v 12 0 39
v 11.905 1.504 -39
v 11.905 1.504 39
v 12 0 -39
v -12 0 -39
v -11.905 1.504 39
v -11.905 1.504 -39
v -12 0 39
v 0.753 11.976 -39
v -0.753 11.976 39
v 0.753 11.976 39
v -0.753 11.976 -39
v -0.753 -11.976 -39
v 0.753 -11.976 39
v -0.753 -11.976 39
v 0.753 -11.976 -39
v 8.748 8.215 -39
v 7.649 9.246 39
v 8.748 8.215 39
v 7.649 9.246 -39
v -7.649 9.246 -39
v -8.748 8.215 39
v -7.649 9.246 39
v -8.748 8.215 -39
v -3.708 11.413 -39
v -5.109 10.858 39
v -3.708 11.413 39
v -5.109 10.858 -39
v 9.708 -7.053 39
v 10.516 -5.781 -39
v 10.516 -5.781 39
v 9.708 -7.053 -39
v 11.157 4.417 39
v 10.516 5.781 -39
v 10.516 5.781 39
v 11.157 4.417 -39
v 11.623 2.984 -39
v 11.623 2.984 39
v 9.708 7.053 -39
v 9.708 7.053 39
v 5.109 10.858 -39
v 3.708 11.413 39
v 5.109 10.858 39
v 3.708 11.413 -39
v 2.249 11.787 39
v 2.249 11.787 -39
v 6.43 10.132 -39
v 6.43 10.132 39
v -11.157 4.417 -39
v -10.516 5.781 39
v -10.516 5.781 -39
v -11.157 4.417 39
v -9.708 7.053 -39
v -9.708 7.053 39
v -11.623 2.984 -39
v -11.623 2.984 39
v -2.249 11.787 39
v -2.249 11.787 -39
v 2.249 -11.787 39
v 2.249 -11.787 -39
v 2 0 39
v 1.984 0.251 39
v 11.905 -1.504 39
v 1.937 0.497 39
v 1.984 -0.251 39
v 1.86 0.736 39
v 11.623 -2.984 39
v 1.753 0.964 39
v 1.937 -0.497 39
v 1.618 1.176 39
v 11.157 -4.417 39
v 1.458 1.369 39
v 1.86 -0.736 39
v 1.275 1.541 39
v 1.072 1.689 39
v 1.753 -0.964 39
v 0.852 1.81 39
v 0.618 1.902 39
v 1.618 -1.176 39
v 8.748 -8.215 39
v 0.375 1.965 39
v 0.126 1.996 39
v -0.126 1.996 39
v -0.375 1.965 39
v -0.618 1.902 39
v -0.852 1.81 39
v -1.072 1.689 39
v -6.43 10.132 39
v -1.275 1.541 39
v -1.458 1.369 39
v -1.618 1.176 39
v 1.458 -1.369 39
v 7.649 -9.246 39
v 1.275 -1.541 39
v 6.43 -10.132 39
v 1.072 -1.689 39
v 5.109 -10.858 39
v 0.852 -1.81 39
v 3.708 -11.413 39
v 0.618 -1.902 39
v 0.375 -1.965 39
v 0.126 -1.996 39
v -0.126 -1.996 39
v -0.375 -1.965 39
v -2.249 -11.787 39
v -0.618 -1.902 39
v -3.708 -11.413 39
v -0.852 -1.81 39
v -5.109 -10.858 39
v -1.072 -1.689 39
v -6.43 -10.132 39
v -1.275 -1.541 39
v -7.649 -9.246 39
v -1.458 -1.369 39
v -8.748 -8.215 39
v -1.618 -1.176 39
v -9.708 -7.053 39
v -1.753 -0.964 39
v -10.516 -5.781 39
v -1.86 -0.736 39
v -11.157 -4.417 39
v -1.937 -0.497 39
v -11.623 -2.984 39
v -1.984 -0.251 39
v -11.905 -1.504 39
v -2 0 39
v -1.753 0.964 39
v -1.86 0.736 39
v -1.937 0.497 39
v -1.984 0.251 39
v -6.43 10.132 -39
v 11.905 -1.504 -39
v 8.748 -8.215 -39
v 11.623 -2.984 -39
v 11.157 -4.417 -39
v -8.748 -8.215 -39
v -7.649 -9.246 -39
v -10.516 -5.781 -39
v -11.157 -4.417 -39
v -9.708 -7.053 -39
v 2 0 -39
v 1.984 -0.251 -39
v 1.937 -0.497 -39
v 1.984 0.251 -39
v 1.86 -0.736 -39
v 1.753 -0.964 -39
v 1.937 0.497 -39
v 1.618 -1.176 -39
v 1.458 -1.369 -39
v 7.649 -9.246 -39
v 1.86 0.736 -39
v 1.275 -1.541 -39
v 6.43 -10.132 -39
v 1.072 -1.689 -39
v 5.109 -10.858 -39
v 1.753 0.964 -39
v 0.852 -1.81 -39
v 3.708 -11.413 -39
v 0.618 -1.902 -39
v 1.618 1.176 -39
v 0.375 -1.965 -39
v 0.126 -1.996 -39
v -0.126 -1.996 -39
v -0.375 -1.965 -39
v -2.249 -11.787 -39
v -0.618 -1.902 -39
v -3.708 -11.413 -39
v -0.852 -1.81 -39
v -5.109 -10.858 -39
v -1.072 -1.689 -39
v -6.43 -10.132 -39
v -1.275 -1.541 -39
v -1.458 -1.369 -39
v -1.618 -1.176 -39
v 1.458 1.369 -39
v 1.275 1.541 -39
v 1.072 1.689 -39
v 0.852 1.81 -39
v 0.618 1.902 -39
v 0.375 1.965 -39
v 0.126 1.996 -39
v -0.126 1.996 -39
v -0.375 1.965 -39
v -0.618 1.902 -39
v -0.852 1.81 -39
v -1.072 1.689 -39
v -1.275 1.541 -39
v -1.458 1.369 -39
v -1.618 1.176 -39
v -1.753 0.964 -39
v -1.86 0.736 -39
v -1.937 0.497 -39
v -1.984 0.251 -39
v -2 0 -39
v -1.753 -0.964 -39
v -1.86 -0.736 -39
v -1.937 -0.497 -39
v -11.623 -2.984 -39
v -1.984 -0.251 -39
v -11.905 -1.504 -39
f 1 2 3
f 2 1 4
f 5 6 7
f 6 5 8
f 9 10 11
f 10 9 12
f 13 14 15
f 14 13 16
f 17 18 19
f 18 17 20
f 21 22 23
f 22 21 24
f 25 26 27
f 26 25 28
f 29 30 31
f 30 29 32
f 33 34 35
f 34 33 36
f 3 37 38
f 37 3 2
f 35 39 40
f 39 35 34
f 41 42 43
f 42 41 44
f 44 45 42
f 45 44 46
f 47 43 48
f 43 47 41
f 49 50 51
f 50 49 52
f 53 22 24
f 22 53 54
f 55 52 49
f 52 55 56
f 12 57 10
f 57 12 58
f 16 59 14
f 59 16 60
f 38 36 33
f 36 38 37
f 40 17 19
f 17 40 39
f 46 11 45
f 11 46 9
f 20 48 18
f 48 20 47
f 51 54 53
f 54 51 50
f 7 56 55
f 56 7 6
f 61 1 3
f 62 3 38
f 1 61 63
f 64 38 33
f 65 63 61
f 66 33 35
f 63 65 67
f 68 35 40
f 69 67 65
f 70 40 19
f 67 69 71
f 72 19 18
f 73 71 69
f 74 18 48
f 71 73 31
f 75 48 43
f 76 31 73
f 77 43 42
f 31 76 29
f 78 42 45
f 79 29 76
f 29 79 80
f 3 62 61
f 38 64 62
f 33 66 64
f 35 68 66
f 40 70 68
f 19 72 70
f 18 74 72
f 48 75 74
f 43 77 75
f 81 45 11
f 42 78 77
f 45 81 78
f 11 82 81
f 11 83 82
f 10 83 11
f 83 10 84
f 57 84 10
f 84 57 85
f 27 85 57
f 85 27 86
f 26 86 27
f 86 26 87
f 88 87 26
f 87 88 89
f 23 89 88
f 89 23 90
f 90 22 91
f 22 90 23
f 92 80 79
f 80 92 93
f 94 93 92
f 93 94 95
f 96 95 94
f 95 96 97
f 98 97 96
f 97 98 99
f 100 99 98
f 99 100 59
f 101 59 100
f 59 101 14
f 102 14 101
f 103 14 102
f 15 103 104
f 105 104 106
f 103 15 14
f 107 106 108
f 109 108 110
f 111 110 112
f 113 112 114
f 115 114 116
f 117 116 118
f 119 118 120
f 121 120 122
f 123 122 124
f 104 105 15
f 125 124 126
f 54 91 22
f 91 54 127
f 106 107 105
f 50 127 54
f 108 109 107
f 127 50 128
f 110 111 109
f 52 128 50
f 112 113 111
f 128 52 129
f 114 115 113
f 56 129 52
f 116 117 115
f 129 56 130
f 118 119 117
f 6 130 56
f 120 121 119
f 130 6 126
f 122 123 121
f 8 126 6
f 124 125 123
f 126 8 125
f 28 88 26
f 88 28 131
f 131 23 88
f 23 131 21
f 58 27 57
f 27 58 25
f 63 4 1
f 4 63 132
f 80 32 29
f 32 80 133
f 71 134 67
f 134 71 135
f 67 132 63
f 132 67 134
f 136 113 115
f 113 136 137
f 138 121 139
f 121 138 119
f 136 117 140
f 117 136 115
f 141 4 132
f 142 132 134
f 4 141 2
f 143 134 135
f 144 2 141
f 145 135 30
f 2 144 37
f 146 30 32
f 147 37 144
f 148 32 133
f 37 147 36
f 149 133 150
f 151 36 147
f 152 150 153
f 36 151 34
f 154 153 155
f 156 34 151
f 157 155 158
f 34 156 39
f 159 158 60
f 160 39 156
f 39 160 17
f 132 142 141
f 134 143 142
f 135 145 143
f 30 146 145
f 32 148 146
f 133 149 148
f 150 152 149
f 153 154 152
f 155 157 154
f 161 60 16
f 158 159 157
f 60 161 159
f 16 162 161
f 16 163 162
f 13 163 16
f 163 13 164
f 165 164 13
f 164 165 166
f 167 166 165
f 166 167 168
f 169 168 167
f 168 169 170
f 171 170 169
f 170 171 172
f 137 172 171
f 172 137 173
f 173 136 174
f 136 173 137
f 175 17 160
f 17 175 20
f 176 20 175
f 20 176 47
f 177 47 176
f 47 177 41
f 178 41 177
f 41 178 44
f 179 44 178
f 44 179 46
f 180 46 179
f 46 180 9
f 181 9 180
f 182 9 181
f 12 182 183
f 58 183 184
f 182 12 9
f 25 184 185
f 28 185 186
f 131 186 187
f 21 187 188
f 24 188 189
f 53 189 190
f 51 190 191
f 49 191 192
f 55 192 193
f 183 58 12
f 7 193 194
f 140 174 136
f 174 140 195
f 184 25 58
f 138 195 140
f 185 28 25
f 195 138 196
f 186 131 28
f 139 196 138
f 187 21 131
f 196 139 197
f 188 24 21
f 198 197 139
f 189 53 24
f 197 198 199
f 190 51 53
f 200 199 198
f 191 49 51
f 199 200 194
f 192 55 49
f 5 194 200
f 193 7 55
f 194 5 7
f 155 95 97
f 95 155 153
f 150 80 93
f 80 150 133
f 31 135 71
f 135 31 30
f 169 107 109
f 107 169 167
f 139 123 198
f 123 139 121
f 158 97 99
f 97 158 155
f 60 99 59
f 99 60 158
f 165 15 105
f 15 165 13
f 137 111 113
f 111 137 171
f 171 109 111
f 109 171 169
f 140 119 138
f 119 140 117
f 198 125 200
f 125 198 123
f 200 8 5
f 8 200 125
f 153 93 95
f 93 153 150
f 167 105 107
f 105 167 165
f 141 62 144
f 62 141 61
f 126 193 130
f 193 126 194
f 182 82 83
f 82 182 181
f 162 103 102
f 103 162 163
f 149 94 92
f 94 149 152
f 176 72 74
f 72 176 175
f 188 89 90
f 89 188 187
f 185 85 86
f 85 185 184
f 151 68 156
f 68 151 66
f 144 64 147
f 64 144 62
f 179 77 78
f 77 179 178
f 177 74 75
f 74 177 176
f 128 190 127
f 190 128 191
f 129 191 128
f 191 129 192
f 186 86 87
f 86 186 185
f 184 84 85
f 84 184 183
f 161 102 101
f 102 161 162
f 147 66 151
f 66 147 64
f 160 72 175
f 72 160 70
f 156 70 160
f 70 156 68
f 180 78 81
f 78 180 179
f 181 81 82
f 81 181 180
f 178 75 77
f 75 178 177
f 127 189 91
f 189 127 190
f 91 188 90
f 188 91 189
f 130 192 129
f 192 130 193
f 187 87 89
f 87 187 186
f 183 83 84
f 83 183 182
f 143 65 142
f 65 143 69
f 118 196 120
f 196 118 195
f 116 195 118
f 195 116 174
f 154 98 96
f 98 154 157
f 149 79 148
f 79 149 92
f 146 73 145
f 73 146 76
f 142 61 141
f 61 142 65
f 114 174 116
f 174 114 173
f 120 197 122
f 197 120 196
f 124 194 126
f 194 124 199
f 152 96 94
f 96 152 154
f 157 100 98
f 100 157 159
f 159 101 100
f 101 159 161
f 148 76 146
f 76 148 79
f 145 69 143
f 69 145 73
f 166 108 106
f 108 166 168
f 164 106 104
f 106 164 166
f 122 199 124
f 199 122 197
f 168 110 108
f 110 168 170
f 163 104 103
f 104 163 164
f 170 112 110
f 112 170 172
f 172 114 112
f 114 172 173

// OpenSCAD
$fn = 50;


difference() {
	union() {
		translate(v = [0, 0, -39.0000000000]) {
			cylinder(h = 78, r = 12.0000000000);
		}
	}
	union() {
		translate(v = [0, 0, -100.0000000000]) {
			cylinder(h = 200, r = 2.0000000000);
		}
	}
}
